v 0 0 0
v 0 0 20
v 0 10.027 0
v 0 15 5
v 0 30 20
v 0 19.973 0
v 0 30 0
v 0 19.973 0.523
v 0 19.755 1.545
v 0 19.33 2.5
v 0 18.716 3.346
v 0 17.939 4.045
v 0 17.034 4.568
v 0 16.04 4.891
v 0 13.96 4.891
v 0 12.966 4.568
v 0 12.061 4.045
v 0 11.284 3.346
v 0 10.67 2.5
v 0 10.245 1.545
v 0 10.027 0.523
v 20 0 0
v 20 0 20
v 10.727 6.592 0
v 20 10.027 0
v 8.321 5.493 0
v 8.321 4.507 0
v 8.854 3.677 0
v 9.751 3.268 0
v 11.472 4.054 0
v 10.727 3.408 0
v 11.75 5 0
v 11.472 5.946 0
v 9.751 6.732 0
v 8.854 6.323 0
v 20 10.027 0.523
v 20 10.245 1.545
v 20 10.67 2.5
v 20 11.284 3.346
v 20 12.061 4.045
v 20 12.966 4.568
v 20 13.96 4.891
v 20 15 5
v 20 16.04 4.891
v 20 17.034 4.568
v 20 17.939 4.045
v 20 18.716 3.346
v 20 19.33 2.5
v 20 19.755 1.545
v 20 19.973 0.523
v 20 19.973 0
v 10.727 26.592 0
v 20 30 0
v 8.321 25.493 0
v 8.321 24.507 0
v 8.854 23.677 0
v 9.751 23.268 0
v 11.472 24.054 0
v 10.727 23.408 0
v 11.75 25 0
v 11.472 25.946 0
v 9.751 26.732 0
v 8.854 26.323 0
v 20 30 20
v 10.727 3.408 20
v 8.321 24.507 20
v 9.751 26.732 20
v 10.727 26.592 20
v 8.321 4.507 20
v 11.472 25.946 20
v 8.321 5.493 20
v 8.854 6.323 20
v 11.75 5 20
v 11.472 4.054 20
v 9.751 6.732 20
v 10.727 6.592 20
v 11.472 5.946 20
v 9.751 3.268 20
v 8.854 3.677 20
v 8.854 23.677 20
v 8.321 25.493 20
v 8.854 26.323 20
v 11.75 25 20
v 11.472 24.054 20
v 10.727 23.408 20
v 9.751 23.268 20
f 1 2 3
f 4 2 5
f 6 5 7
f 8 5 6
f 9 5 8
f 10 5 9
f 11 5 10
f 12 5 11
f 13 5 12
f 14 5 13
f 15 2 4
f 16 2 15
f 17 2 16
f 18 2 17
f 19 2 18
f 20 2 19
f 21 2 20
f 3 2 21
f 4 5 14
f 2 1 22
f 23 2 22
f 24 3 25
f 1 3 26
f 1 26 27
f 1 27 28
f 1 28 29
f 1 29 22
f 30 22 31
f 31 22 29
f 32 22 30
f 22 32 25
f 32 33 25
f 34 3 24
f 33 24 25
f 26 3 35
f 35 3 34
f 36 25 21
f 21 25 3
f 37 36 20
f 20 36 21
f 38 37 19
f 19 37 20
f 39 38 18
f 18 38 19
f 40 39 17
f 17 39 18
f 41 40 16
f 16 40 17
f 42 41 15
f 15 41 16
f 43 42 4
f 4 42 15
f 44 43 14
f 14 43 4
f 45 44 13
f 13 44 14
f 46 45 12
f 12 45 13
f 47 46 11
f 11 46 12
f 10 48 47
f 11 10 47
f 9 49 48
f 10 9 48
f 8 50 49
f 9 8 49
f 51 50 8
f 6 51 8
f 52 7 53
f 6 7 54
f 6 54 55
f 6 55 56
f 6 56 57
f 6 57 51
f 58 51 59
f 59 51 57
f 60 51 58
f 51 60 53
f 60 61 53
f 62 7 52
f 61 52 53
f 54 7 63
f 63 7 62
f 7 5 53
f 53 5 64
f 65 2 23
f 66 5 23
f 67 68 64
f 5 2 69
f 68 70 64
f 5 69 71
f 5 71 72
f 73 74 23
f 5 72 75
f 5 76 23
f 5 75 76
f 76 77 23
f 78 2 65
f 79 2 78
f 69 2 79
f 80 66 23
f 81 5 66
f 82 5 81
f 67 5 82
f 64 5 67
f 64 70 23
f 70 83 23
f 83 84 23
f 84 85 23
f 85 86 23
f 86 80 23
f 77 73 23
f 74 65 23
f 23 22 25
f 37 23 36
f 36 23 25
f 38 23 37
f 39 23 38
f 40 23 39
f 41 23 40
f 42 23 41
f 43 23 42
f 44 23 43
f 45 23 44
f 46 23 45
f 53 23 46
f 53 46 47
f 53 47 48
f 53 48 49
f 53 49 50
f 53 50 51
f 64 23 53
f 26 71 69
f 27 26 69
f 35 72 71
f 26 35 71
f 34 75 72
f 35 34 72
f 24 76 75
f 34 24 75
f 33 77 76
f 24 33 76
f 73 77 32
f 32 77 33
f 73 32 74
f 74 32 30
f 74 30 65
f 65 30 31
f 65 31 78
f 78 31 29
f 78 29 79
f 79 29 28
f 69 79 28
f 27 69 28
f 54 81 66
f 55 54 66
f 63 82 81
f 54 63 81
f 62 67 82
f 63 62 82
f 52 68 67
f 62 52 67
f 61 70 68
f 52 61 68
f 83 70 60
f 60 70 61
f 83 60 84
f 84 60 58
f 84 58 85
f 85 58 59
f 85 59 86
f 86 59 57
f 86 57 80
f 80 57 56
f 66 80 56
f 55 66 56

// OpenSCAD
barwidth = 20;
width_ridge=4;
widthNema17=43;
nema17holeOffset =6;
nema17innerHole=25/2;
nema17Shaft=8/2;
motorThickNess=5;
offsetx =9;
offsety  =9;
barpositionz=30;
rodwidth =8;
nutwidth=14;

height = 30;
width = barwidth;

thickness=20;
spacing_bars = 50;
largeCircle = 70.0;
holeSize=5.5;

holes = [
	[width/2,5,3.5],
	[width/2,height-5,3.5],
];



difference() {
union() {

cube([width,height,thickness],false);


}



	for(i = holes) {
		translate([ i[0],i[1],0])
			cylinder(h=100,r=i[2]/2, center = false, $fs=1);
	}
rotate([0,90,0])
translate([0,height/2,-10])
	cylinder(h=100,r=5, center = false, $fs=1);
}	
